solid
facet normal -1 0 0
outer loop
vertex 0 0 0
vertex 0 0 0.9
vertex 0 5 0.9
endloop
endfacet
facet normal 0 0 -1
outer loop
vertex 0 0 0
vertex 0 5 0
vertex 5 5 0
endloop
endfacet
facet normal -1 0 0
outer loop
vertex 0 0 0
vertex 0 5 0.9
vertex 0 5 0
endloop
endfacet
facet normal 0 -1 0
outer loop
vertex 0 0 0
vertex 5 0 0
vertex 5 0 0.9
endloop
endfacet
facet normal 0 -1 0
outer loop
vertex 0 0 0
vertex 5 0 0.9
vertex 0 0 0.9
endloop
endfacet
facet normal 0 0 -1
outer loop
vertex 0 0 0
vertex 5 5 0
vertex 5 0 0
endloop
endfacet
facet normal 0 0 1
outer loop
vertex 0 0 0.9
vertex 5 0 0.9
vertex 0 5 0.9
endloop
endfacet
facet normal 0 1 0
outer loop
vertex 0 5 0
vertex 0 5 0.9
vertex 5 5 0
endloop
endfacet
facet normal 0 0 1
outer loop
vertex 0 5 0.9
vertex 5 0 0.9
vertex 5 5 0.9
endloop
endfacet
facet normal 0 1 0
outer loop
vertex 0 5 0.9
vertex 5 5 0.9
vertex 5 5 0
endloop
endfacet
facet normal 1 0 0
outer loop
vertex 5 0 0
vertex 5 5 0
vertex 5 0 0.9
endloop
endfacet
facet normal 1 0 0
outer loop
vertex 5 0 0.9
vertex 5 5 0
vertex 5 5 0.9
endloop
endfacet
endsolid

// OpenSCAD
/* Warning, this is a very basic generator with a lot of approximation 
input data : [VQFN, RUB, 5x5x0.9mm, 24, , A, C04-21392A]
generated by com.zoubworld.electronics.cad.model3d.Basic
Date : Sun Feb 15 10:50:49 CET 2026
*/

//body
color("black")
translate([0,0,0])
cube([5.0,5.0,0.9], center=false);
